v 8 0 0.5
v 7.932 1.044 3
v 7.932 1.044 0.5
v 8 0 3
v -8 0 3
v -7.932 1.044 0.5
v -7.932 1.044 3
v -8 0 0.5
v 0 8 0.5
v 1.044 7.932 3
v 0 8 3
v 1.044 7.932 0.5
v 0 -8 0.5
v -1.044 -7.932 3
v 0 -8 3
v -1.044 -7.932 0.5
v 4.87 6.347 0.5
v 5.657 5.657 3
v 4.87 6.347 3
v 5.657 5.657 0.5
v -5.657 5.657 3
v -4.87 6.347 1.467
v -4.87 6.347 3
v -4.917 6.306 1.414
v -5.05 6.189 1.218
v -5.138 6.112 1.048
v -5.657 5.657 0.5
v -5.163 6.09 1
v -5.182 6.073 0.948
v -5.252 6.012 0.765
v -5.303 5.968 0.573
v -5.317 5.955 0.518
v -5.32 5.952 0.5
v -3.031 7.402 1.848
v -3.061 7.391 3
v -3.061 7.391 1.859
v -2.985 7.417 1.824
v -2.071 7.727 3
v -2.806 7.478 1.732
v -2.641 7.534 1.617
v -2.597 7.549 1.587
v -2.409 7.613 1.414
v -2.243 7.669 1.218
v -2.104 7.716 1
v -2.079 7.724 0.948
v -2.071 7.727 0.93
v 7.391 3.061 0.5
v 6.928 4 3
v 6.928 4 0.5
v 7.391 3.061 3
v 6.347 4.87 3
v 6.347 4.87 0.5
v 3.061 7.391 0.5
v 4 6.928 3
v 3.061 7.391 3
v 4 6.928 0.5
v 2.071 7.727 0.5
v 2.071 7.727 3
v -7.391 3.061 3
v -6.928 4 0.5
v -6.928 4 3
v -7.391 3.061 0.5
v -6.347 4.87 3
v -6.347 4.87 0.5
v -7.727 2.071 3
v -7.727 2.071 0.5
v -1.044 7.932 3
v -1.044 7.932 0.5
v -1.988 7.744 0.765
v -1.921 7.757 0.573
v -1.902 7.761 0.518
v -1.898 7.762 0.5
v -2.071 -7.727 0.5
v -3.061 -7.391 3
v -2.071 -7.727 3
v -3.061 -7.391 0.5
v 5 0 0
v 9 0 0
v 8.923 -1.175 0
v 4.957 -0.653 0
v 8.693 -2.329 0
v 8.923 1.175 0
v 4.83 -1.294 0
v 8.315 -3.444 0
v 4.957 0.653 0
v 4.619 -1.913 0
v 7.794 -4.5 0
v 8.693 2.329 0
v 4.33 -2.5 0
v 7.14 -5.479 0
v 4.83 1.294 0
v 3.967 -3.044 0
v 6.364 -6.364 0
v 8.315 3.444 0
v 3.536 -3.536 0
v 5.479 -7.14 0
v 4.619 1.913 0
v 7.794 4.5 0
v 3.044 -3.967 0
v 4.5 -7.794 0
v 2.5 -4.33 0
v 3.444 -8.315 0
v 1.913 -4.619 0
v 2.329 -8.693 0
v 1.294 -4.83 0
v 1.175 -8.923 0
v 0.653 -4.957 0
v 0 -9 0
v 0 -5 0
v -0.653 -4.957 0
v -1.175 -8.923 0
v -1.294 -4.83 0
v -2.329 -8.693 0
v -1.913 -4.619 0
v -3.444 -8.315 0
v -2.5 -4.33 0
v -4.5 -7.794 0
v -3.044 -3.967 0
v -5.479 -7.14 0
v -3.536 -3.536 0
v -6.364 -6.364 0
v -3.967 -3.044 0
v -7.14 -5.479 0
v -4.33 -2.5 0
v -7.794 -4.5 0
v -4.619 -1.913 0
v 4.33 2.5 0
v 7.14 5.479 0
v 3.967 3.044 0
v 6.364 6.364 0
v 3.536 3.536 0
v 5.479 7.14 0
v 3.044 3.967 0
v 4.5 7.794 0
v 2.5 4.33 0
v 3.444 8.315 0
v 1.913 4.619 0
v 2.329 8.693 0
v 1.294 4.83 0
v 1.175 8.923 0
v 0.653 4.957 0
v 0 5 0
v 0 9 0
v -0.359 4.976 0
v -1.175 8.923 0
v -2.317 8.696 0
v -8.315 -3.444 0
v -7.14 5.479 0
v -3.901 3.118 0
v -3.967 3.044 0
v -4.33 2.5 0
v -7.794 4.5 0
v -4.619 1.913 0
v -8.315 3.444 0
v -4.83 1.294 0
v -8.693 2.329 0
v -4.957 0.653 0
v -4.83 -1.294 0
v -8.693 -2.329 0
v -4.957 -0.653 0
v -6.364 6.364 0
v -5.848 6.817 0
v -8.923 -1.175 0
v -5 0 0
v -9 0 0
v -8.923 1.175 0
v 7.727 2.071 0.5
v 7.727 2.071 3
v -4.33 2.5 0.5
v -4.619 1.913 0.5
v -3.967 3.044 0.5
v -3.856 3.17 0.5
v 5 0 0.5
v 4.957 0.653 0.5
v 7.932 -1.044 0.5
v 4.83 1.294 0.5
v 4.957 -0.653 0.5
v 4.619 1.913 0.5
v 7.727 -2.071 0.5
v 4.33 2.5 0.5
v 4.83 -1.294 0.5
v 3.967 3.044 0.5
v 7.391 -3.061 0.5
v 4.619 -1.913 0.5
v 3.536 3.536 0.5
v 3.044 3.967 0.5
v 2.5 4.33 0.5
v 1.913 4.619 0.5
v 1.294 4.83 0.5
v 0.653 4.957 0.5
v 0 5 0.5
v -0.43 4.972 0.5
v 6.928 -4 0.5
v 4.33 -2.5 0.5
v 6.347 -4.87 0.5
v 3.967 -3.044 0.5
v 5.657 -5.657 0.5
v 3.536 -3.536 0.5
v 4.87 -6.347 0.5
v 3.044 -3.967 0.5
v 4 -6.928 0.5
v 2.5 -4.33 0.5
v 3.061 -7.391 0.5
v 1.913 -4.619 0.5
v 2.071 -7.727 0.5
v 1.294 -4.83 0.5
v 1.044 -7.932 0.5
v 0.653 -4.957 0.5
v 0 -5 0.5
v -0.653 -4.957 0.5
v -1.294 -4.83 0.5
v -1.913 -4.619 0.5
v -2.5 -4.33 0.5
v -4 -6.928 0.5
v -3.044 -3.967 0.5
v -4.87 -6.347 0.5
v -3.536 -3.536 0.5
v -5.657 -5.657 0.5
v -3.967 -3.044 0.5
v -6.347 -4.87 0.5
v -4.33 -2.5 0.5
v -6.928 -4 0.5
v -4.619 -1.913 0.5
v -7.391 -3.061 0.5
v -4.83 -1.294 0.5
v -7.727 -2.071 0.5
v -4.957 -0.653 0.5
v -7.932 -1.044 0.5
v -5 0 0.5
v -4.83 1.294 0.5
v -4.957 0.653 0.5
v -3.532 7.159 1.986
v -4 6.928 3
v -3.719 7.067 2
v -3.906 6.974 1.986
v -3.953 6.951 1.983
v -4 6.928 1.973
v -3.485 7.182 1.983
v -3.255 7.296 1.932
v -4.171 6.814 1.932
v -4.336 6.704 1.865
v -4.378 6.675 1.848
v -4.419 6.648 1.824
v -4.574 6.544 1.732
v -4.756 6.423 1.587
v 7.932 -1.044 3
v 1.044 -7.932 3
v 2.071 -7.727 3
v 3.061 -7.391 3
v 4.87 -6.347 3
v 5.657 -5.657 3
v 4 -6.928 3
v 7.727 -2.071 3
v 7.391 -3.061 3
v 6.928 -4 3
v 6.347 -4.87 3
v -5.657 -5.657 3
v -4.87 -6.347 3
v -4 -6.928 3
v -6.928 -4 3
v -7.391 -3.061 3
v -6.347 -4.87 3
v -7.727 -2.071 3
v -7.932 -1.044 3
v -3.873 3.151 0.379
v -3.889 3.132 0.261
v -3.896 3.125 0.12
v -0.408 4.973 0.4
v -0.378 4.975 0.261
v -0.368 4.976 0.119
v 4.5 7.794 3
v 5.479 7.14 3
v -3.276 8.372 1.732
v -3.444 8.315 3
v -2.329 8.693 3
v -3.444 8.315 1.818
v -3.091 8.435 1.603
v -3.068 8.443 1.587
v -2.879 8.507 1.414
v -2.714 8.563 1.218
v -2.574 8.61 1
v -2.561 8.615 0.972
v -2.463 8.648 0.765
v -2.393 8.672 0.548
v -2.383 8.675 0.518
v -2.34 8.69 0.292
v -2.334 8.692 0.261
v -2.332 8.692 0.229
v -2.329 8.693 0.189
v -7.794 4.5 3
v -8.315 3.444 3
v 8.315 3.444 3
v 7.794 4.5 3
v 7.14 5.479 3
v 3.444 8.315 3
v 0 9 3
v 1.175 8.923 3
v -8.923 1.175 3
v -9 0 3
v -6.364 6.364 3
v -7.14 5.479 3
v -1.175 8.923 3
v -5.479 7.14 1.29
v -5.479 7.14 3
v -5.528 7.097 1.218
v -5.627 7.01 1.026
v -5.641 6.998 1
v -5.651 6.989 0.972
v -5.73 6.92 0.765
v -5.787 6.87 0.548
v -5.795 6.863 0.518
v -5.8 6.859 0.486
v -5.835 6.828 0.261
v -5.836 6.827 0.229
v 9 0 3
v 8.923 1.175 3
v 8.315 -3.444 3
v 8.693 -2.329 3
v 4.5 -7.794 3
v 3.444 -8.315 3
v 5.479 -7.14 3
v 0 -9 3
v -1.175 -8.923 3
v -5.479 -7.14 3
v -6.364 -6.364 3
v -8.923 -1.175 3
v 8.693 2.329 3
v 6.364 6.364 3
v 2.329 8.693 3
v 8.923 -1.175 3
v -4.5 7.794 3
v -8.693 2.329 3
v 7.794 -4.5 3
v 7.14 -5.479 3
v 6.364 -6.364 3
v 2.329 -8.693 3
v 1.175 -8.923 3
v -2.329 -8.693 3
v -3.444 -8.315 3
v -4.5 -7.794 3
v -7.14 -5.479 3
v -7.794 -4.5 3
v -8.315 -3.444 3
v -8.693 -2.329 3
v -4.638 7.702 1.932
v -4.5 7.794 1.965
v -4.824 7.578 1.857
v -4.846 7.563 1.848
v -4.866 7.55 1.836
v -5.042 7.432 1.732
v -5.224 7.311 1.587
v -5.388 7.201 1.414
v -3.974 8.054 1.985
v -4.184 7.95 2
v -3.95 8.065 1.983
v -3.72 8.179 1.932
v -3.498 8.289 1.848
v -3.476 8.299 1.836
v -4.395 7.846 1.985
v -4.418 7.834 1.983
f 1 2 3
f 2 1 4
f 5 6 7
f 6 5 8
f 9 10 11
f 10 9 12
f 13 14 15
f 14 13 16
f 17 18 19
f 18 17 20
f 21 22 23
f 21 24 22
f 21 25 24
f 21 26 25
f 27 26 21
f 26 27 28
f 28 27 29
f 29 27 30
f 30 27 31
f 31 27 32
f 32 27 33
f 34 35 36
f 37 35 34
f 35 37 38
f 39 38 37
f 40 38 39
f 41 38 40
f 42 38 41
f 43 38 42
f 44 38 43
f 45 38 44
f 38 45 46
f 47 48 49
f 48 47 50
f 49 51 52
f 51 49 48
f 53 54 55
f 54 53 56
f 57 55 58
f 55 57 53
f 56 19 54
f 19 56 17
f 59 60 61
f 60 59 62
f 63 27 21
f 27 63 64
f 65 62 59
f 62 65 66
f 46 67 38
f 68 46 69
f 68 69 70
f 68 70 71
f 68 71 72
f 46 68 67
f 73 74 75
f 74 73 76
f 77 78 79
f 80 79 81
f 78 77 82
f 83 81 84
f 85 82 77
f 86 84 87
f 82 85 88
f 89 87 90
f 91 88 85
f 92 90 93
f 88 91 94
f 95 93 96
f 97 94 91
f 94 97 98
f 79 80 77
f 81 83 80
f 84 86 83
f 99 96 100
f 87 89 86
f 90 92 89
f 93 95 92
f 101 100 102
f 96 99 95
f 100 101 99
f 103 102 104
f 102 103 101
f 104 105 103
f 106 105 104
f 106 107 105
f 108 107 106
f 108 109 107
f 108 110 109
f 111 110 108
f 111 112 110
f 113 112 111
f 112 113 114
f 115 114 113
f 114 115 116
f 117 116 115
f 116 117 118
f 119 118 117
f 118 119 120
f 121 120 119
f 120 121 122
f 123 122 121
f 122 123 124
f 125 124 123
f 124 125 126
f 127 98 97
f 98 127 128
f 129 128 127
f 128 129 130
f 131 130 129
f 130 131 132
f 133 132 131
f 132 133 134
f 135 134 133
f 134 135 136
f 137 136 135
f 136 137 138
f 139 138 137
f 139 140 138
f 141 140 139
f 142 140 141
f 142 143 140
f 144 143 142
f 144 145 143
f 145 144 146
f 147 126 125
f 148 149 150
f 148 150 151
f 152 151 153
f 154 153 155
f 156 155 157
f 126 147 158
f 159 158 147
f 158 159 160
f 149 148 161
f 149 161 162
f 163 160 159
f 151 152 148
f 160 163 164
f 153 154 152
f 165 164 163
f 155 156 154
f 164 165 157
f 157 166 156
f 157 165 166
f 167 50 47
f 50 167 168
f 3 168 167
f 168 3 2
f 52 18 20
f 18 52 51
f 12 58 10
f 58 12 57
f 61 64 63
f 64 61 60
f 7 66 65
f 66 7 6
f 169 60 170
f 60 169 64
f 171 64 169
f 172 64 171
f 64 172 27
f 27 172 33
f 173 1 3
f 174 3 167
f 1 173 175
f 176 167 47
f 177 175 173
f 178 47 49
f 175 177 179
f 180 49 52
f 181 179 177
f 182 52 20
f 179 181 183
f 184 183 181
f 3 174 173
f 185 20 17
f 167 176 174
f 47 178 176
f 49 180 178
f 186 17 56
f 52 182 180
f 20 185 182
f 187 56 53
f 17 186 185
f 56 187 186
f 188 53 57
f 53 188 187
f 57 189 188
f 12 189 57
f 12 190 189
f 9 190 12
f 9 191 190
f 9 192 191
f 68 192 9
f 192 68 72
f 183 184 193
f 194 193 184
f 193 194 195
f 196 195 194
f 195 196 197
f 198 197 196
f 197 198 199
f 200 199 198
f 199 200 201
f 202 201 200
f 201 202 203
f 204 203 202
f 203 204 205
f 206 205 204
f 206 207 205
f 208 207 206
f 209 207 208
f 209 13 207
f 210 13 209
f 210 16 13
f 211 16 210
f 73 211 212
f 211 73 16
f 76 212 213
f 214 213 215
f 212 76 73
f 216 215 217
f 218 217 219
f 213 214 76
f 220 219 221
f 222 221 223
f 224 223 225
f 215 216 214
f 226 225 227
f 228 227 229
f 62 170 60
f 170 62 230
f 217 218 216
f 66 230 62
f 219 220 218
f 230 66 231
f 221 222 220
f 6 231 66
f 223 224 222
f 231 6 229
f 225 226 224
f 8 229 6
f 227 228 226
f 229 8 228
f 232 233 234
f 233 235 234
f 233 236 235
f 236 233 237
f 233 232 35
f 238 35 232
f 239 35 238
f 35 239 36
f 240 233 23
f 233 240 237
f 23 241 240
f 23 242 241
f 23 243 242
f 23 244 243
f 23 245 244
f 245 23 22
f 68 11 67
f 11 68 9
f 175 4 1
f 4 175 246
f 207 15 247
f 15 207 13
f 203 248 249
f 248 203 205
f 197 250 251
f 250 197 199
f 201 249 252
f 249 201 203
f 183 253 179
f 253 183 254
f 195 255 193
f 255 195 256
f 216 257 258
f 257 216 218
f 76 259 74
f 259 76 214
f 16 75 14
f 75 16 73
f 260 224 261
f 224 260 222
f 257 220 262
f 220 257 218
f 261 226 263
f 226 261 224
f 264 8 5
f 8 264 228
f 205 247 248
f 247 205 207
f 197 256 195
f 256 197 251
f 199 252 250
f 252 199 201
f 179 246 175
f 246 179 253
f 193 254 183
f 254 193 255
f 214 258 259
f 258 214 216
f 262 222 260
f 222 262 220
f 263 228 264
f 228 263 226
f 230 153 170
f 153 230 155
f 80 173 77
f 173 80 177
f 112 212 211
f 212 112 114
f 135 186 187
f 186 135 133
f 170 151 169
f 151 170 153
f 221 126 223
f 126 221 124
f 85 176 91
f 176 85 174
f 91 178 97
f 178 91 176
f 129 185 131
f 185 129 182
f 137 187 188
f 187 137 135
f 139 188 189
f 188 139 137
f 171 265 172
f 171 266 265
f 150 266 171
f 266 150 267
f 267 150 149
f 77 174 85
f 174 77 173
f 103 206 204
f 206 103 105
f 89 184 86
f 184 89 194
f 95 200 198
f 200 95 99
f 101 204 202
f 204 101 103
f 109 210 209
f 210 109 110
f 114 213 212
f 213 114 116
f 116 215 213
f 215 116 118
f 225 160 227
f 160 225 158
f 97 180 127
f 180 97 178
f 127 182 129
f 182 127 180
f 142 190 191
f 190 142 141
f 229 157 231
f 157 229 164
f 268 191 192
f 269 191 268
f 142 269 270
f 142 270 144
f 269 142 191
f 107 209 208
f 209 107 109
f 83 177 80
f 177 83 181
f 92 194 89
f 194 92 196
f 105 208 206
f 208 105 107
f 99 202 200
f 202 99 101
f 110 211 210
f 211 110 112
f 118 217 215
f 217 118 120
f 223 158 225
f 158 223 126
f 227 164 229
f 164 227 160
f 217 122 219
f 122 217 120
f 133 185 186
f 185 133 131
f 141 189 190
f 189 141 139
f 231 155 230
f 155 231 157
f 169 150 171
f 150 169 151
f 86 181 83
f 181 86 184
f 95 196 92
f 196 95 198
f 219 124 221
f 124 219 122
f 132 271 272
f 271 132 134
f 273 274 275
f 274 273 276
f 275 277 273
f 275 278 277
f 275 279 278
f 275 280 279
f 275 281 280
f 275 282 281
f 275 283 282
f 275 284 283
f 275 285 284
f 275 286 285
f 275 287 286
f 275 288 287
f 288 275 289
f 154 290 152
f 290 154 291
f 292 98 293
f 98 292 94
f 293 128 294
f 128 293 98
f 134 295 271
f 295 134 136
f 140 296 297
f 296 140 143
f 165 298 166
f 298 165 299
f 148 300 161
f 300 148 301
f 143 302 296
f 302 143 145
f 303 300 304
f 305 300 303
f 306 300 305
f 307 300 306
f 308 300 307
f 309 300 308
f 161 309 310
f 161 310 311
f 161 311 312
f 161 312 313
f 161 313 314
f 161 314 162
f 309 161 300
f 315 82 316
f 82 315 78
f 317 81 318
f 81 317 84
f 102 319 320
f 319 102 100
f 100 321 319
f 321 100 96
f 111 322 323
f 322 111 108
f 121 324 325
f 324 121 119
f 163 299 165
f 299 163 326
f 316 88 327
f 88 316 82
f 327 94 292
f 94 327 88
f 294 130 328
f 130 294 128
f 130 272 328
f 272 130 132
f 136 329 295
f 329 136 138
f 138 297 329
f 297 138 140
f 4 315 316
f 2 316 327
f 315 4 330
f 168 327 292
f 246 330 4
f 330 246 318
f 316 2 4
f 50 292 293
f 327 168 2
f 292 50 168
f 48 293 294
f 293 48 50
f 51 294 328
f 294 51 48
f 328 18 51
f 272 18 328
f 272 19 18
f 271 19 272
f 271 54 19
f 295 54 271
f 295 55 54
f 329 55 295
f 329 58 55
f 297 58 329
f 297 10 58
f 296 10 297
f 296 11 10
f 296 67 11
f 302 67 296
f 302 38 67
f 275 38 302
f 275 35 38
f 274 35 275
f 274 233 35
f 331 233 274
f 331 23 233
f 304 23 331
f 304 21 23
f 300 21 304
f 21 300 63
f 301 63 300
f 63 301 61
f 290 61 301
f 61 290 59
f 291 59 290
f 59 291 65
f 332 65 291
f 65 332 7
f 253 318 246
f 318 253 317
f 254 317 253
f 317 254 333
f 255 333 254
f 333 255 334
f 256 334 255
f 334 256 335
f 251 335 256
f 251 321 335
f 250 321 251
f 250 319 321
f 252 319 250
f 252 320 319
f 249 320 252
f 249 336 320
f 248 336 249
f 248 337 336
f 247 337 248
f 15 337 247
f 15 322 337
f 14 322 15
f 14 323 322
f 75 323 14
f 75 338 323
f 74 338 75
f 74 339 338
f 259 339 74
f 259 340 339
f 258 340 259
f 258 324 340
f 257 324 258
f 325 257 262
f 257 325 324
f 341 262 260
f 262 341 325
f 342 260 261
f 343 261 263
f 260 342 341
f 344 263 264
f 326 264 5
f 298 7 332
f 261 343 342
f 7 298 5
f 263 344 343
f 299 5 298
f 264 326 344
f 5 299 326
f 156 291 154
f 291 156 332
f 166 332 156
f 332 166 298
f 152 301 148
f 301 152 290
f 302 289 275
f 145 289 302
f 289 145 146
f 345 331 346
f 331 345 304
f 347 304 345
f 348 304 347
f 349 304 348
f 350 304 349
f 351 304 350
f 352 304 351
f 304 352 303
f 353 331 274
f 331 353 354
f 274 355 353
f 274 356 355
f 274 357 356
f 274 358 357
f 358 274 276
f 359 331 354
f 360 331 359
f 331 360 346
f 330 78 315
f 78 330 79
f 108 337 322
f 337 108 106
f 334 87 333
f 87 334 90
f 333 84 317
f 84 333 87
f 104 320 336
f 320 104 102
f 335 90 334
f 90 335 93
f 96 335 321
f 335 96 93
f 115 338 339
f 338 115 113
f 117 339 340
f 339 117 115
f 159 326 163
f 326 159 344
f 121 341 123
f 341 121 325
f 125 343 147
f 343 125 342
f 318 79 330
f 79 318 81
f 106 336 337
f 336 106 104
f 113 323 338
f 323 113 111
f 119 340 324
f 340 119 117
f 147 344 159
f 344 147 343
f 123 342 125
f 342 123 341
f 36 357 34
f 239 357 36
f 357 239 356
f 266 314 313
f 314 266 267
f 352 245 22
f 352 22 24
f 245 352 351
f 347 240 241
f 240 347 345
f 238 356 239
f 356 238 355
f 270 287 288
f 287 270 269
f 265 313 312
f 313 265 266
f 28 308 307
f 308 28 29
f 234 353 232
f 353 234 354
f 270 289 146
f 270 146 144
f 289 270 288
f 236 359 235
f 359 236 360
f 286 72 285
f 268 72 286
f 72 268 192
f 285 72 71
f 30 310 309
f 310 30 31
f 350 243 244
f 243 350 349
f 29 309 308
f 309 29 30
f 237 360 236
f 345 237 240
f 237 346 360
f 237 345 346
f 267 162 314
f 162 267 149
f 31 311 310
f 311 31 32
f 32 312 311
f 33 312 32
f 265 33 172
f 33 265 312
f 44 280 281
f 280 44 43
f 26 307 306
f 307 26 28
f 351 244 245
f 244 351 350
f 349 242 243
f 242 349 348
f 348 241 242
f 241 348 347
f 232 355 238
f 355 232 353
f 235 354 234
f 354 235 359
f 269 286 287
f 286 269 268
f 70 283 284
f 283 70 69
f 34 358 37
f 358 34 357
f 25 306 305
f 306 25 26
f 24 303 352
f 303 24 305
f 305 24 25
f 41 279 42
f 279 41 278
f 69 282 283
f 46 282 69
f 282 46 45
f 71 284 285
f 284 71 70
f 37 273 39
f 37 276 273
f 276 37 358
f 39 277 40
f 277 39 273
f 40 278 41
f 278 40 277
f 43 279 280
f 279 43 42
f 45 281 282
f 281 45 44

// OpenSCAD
// file: ../build_environments.scad
// build_environments.scad: modules to build level sections
//

module pool(diameter=10.0, wall_height=2.0, step_width=3.0, connections=[])
{
    difference() {
        union() {
        difference() {
            cylinder(h=0.5,r1=diameter+step_width,r2=diameter+step_width,$fn=48);
            translate([0,0,-0.1])
                cylinder(h=0.7,r1=diameter,r2=diameter,$fn=48);
        }
        difference() {
            cylinder(h=wall_height,r1=diameter+step_width+1.0,r2=diameter+step_width+1.0,$fn=48);
            translate([0,0,-0.1])
                cylinder(h=wall_height+0.2,r1=diameter+step_width,r2=diameter+step_width,$fn=48);
        }
        }
    
        for (c = connections)
        {
            rotate([0,90,0]) {
                angle = atan2(c[1],c[0]);
                rotate([-angle,0,0]) {
                    cylinder(h=diameter+5.0,r1=c[2],r2=c[2],$fn=48);
                }
            }
        }
    }
}

module straight(length=10.0, width=2.0, dy1=0.0, dy2=0.0, dz=0.0)
{
    dims = [0, 0, 0, 0, 0, (dz/length)];
    matrix = [
        [ 1, dims[0], dims[1], 0 ],
        [ dims[2], 1, dims[4], 0 ],
        [ dims[5], dims[3], 1, 0 ],
        [ 0, 0, 0, 1 ]
    ];
    multmatrix(matrix)
    difference() {
        translate([dy1,0,0])
        union() {
            rotate([0,90,0]) {
                difference() {
                    cylinder(h=(length-dy1-dy2),r1=width+1.0,r2=width+1.0,$fn=24);
                    translate([0,0,-0.1])
                        cylinder(h=(length-dy1-dy2+0.2),r1=width,r2=width,$fn=24);
                }
                difference() {
                    cylinder(h=1.0,r1=width+2.0,r2=width+2.0,$fn=24);
                    translate([0,0,-0.1])
                        cylinder(h=1.2,r1=width,r2=width,$fn=24);
                }
                translate([0,0,(length-dy1-dy2)-1.0]) {
                    difference() {
                        cylinder(h=1.0,r1=width+2.0,r2=width+2.0,$fn=24);
                        translate([0,0,-0.1])
                            cylinder(h=1.2,r1=width,r2=width,$fn=24);
                    }
                }
            }
        }
        translate([0,0,-(2*width+4.0)/2])
            cube([3*length,3*length,2*width+4.0],center=true);
    }
}

module curve(p0=[0,0], center=[0,0], dir=1, angle=0.0, width=2.0)
{
    radius = sqrt((p0[0]-center[0])*(p0[0]-center[0]) + (p0[1]-center[1])*(p0[1]-center[1]));
    if (dir == 0) {
        difference() {
            rotate([0,0,-90])
            difference() {
                rotate_extrude(angle = angle, convexity = 10, $fn=32)
                    translate([radius, 0, 0])
                        circle(r = width+1.0,$fn=24);
                rotate([0,0,-1.0])
                    rotate_extrude(angle = angle+2.0, convexity = 10, $fn=32)
                        translate([radius, 0, 0])
                            circle(r = width,$fn=24);
            }
            translate([0,0,-(2*width+4.0)/2])
                cube([5*radius,5*radius,2*width+4.0],center=true);
        }
    }
    else {
        difference() {
            rotate([0,0,90])
            difference() {
                rotate_extrude(angle = -angle, convexity = 10, $fn=32)
                    translate([radius, 0, 0])
                        circle(r = width+1.0,$fn=24);
                rotate([0,0,1.0])
                    rotate_extrude(angle = -angle-2.0, convexity = 10, $fn=32)
                        translate([radius, 0, 0])
                            circle(r = width,$fn=24);
            }
            translate([0,0,-(2*width+4.0)/2])
                cube([5*radius,5*radius,2*width+4.0],center=true);
        }
    }

}

// test pool
//pool(diameter=12.0000, wall_height=3.0000, step_width=3.0000, connections=[[0.0000,-26.0000,2.0000], [23.6074,0.0000,2.0000]]);

// test straight, slope
//straight(length=26.0000, width=2.0000, dy1=11.8322, dy2=6.7082, dz=0.0000);
//straight(length=29.1549, width=12.0000, dy1=0.0000, dy2=0.0000, dz=-15.0000);

// test curve
//curve(p0=[23.6074, 0.0000], center=[23.6074, 5.0000], dir=0, angle=60.1011, width=2.0000);
//curve(p0=[33.6426, 12.4219], center=[37.9771, 9.9295], dir=1, angle=120.4627, width=2.0000);
// main file
use <../build_environments.scad>;
pool(diameter=5.0000, wall_height=3.0000, step_width=3.0000, connections=[[-10.0000,19.0000,2.0000]]);
